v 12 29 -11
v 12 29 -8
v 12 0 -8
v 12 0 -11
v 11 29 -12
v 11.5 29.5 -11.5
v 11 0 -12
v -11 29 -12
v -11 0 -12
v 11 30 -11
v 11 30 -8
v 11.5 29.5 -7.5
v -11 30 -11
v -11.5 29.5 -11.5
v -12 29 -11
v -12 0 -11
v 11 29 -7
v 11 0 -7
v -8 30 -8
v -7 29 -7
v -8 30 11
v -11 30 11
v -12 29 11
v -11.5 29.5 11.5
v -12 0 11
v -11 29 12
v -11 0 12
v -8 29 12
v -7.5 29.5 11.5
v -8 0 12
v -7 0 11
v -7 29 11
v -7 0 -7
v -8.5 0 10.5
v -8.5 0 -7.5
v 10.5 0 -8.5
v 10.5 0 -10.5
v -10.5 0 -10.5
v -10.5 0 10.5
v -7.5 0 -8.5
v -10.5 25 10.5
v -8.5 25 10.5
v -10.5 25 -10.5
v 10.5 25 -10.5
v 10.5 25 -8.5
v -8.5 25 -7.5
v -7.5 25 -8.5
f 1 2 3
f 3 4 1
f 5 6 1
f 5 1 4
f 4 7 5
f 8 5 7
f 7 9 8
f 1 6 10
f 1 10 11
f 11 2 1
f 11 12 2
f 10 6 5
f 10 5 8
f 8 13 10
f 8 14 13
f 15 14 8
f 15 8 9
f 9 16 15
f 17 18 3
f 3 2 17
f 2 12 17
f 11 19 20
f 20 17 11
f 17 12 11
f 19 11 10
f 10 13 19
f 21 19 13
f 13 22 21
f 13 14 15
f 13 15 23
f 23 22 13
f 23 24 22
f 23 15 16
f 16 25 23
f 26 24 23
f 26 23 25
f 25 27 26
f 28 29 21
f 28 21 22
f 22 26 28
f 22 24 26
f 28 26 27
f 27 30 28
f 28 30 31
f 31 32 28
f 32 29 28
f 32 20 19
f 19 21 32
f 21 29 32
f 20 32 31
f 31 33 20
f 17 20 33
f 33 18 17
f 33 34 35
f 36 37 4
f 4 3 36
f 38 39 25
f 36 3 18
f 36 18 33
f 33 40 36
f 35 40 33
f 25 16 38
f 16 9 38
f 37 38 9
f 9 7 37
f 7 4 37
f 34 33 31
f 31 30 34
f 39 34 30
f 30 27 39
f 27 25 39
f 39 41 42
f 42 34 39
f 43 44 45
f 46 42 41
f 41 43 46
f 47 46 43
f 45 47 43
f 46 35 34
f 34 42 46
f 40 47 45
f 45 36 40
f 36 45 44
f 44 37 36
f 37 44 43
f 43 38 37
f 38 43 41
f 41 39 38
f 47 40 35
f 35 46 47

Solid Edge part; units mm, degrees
sketch "Sketch1" plane through (0, 0, 0) normal (0, -1, 0) x (1, 0, 0)
  line L0 (12, 12) -> (-12, 12)
  line L1 (-12, 12) -> (-12, -12)
  line L2 (-12, -12) -> (12, -12)
  line L3 (12, -12) -> (12, 12)
extrude "Protrusion1" add sketch "Sketch1" against normal blind 30
sketch "Sketch2" plane through (0, 0, 0) normal (0, -1, 0) x (1, 0, 0)
  line L0 (-8.5, 10.5) -> (-8.5, -8.5)
  line L1 (-8.5, -8.5) -> (10.5, -8.5)
  line L2 (10.5, -8.5) -> (10.5, -10.5)
  line L3 (10.5, -10.5) -> (-10.5, -10.5)
  line L4 (-10.5, -10.5) -> (-10.5, 10.5)
  line L5 (-10.5, 10.5) -> (-8.5, 10.5)
extrude "VaciadoExtruido_1" cut sketch "Sketch2" against normal blind 25
sketch "Sketch3" plane through (0, 0, 0) normal (0, -1, 0) x (1, 0, 0)
  line L0 (-7, 12) -> (-7, -7)
  line L1 (-7, -7) -> (12, -7)
extrude "Cutout1" cut sketch "Sketch3" against normal through all material side at (-6.95, 0, 2.5)
chamfer "Chaflán_1" distance 1 angle 45 6 edges at (-12, 15, 12) (-7, 15, 12) (-12, 15, -12) (12, 15, -12) (12, 15, -7) (-8.5, 12.5, -8.5)
chamfer "Chaflán_2" distance 1 angle 45 6 edges at (-9.5, 30, 12) (-12, 30, 0) (-7, 30, 2) (2, 30, -7) (12, 30, -9.5) (0, 30, -12)
